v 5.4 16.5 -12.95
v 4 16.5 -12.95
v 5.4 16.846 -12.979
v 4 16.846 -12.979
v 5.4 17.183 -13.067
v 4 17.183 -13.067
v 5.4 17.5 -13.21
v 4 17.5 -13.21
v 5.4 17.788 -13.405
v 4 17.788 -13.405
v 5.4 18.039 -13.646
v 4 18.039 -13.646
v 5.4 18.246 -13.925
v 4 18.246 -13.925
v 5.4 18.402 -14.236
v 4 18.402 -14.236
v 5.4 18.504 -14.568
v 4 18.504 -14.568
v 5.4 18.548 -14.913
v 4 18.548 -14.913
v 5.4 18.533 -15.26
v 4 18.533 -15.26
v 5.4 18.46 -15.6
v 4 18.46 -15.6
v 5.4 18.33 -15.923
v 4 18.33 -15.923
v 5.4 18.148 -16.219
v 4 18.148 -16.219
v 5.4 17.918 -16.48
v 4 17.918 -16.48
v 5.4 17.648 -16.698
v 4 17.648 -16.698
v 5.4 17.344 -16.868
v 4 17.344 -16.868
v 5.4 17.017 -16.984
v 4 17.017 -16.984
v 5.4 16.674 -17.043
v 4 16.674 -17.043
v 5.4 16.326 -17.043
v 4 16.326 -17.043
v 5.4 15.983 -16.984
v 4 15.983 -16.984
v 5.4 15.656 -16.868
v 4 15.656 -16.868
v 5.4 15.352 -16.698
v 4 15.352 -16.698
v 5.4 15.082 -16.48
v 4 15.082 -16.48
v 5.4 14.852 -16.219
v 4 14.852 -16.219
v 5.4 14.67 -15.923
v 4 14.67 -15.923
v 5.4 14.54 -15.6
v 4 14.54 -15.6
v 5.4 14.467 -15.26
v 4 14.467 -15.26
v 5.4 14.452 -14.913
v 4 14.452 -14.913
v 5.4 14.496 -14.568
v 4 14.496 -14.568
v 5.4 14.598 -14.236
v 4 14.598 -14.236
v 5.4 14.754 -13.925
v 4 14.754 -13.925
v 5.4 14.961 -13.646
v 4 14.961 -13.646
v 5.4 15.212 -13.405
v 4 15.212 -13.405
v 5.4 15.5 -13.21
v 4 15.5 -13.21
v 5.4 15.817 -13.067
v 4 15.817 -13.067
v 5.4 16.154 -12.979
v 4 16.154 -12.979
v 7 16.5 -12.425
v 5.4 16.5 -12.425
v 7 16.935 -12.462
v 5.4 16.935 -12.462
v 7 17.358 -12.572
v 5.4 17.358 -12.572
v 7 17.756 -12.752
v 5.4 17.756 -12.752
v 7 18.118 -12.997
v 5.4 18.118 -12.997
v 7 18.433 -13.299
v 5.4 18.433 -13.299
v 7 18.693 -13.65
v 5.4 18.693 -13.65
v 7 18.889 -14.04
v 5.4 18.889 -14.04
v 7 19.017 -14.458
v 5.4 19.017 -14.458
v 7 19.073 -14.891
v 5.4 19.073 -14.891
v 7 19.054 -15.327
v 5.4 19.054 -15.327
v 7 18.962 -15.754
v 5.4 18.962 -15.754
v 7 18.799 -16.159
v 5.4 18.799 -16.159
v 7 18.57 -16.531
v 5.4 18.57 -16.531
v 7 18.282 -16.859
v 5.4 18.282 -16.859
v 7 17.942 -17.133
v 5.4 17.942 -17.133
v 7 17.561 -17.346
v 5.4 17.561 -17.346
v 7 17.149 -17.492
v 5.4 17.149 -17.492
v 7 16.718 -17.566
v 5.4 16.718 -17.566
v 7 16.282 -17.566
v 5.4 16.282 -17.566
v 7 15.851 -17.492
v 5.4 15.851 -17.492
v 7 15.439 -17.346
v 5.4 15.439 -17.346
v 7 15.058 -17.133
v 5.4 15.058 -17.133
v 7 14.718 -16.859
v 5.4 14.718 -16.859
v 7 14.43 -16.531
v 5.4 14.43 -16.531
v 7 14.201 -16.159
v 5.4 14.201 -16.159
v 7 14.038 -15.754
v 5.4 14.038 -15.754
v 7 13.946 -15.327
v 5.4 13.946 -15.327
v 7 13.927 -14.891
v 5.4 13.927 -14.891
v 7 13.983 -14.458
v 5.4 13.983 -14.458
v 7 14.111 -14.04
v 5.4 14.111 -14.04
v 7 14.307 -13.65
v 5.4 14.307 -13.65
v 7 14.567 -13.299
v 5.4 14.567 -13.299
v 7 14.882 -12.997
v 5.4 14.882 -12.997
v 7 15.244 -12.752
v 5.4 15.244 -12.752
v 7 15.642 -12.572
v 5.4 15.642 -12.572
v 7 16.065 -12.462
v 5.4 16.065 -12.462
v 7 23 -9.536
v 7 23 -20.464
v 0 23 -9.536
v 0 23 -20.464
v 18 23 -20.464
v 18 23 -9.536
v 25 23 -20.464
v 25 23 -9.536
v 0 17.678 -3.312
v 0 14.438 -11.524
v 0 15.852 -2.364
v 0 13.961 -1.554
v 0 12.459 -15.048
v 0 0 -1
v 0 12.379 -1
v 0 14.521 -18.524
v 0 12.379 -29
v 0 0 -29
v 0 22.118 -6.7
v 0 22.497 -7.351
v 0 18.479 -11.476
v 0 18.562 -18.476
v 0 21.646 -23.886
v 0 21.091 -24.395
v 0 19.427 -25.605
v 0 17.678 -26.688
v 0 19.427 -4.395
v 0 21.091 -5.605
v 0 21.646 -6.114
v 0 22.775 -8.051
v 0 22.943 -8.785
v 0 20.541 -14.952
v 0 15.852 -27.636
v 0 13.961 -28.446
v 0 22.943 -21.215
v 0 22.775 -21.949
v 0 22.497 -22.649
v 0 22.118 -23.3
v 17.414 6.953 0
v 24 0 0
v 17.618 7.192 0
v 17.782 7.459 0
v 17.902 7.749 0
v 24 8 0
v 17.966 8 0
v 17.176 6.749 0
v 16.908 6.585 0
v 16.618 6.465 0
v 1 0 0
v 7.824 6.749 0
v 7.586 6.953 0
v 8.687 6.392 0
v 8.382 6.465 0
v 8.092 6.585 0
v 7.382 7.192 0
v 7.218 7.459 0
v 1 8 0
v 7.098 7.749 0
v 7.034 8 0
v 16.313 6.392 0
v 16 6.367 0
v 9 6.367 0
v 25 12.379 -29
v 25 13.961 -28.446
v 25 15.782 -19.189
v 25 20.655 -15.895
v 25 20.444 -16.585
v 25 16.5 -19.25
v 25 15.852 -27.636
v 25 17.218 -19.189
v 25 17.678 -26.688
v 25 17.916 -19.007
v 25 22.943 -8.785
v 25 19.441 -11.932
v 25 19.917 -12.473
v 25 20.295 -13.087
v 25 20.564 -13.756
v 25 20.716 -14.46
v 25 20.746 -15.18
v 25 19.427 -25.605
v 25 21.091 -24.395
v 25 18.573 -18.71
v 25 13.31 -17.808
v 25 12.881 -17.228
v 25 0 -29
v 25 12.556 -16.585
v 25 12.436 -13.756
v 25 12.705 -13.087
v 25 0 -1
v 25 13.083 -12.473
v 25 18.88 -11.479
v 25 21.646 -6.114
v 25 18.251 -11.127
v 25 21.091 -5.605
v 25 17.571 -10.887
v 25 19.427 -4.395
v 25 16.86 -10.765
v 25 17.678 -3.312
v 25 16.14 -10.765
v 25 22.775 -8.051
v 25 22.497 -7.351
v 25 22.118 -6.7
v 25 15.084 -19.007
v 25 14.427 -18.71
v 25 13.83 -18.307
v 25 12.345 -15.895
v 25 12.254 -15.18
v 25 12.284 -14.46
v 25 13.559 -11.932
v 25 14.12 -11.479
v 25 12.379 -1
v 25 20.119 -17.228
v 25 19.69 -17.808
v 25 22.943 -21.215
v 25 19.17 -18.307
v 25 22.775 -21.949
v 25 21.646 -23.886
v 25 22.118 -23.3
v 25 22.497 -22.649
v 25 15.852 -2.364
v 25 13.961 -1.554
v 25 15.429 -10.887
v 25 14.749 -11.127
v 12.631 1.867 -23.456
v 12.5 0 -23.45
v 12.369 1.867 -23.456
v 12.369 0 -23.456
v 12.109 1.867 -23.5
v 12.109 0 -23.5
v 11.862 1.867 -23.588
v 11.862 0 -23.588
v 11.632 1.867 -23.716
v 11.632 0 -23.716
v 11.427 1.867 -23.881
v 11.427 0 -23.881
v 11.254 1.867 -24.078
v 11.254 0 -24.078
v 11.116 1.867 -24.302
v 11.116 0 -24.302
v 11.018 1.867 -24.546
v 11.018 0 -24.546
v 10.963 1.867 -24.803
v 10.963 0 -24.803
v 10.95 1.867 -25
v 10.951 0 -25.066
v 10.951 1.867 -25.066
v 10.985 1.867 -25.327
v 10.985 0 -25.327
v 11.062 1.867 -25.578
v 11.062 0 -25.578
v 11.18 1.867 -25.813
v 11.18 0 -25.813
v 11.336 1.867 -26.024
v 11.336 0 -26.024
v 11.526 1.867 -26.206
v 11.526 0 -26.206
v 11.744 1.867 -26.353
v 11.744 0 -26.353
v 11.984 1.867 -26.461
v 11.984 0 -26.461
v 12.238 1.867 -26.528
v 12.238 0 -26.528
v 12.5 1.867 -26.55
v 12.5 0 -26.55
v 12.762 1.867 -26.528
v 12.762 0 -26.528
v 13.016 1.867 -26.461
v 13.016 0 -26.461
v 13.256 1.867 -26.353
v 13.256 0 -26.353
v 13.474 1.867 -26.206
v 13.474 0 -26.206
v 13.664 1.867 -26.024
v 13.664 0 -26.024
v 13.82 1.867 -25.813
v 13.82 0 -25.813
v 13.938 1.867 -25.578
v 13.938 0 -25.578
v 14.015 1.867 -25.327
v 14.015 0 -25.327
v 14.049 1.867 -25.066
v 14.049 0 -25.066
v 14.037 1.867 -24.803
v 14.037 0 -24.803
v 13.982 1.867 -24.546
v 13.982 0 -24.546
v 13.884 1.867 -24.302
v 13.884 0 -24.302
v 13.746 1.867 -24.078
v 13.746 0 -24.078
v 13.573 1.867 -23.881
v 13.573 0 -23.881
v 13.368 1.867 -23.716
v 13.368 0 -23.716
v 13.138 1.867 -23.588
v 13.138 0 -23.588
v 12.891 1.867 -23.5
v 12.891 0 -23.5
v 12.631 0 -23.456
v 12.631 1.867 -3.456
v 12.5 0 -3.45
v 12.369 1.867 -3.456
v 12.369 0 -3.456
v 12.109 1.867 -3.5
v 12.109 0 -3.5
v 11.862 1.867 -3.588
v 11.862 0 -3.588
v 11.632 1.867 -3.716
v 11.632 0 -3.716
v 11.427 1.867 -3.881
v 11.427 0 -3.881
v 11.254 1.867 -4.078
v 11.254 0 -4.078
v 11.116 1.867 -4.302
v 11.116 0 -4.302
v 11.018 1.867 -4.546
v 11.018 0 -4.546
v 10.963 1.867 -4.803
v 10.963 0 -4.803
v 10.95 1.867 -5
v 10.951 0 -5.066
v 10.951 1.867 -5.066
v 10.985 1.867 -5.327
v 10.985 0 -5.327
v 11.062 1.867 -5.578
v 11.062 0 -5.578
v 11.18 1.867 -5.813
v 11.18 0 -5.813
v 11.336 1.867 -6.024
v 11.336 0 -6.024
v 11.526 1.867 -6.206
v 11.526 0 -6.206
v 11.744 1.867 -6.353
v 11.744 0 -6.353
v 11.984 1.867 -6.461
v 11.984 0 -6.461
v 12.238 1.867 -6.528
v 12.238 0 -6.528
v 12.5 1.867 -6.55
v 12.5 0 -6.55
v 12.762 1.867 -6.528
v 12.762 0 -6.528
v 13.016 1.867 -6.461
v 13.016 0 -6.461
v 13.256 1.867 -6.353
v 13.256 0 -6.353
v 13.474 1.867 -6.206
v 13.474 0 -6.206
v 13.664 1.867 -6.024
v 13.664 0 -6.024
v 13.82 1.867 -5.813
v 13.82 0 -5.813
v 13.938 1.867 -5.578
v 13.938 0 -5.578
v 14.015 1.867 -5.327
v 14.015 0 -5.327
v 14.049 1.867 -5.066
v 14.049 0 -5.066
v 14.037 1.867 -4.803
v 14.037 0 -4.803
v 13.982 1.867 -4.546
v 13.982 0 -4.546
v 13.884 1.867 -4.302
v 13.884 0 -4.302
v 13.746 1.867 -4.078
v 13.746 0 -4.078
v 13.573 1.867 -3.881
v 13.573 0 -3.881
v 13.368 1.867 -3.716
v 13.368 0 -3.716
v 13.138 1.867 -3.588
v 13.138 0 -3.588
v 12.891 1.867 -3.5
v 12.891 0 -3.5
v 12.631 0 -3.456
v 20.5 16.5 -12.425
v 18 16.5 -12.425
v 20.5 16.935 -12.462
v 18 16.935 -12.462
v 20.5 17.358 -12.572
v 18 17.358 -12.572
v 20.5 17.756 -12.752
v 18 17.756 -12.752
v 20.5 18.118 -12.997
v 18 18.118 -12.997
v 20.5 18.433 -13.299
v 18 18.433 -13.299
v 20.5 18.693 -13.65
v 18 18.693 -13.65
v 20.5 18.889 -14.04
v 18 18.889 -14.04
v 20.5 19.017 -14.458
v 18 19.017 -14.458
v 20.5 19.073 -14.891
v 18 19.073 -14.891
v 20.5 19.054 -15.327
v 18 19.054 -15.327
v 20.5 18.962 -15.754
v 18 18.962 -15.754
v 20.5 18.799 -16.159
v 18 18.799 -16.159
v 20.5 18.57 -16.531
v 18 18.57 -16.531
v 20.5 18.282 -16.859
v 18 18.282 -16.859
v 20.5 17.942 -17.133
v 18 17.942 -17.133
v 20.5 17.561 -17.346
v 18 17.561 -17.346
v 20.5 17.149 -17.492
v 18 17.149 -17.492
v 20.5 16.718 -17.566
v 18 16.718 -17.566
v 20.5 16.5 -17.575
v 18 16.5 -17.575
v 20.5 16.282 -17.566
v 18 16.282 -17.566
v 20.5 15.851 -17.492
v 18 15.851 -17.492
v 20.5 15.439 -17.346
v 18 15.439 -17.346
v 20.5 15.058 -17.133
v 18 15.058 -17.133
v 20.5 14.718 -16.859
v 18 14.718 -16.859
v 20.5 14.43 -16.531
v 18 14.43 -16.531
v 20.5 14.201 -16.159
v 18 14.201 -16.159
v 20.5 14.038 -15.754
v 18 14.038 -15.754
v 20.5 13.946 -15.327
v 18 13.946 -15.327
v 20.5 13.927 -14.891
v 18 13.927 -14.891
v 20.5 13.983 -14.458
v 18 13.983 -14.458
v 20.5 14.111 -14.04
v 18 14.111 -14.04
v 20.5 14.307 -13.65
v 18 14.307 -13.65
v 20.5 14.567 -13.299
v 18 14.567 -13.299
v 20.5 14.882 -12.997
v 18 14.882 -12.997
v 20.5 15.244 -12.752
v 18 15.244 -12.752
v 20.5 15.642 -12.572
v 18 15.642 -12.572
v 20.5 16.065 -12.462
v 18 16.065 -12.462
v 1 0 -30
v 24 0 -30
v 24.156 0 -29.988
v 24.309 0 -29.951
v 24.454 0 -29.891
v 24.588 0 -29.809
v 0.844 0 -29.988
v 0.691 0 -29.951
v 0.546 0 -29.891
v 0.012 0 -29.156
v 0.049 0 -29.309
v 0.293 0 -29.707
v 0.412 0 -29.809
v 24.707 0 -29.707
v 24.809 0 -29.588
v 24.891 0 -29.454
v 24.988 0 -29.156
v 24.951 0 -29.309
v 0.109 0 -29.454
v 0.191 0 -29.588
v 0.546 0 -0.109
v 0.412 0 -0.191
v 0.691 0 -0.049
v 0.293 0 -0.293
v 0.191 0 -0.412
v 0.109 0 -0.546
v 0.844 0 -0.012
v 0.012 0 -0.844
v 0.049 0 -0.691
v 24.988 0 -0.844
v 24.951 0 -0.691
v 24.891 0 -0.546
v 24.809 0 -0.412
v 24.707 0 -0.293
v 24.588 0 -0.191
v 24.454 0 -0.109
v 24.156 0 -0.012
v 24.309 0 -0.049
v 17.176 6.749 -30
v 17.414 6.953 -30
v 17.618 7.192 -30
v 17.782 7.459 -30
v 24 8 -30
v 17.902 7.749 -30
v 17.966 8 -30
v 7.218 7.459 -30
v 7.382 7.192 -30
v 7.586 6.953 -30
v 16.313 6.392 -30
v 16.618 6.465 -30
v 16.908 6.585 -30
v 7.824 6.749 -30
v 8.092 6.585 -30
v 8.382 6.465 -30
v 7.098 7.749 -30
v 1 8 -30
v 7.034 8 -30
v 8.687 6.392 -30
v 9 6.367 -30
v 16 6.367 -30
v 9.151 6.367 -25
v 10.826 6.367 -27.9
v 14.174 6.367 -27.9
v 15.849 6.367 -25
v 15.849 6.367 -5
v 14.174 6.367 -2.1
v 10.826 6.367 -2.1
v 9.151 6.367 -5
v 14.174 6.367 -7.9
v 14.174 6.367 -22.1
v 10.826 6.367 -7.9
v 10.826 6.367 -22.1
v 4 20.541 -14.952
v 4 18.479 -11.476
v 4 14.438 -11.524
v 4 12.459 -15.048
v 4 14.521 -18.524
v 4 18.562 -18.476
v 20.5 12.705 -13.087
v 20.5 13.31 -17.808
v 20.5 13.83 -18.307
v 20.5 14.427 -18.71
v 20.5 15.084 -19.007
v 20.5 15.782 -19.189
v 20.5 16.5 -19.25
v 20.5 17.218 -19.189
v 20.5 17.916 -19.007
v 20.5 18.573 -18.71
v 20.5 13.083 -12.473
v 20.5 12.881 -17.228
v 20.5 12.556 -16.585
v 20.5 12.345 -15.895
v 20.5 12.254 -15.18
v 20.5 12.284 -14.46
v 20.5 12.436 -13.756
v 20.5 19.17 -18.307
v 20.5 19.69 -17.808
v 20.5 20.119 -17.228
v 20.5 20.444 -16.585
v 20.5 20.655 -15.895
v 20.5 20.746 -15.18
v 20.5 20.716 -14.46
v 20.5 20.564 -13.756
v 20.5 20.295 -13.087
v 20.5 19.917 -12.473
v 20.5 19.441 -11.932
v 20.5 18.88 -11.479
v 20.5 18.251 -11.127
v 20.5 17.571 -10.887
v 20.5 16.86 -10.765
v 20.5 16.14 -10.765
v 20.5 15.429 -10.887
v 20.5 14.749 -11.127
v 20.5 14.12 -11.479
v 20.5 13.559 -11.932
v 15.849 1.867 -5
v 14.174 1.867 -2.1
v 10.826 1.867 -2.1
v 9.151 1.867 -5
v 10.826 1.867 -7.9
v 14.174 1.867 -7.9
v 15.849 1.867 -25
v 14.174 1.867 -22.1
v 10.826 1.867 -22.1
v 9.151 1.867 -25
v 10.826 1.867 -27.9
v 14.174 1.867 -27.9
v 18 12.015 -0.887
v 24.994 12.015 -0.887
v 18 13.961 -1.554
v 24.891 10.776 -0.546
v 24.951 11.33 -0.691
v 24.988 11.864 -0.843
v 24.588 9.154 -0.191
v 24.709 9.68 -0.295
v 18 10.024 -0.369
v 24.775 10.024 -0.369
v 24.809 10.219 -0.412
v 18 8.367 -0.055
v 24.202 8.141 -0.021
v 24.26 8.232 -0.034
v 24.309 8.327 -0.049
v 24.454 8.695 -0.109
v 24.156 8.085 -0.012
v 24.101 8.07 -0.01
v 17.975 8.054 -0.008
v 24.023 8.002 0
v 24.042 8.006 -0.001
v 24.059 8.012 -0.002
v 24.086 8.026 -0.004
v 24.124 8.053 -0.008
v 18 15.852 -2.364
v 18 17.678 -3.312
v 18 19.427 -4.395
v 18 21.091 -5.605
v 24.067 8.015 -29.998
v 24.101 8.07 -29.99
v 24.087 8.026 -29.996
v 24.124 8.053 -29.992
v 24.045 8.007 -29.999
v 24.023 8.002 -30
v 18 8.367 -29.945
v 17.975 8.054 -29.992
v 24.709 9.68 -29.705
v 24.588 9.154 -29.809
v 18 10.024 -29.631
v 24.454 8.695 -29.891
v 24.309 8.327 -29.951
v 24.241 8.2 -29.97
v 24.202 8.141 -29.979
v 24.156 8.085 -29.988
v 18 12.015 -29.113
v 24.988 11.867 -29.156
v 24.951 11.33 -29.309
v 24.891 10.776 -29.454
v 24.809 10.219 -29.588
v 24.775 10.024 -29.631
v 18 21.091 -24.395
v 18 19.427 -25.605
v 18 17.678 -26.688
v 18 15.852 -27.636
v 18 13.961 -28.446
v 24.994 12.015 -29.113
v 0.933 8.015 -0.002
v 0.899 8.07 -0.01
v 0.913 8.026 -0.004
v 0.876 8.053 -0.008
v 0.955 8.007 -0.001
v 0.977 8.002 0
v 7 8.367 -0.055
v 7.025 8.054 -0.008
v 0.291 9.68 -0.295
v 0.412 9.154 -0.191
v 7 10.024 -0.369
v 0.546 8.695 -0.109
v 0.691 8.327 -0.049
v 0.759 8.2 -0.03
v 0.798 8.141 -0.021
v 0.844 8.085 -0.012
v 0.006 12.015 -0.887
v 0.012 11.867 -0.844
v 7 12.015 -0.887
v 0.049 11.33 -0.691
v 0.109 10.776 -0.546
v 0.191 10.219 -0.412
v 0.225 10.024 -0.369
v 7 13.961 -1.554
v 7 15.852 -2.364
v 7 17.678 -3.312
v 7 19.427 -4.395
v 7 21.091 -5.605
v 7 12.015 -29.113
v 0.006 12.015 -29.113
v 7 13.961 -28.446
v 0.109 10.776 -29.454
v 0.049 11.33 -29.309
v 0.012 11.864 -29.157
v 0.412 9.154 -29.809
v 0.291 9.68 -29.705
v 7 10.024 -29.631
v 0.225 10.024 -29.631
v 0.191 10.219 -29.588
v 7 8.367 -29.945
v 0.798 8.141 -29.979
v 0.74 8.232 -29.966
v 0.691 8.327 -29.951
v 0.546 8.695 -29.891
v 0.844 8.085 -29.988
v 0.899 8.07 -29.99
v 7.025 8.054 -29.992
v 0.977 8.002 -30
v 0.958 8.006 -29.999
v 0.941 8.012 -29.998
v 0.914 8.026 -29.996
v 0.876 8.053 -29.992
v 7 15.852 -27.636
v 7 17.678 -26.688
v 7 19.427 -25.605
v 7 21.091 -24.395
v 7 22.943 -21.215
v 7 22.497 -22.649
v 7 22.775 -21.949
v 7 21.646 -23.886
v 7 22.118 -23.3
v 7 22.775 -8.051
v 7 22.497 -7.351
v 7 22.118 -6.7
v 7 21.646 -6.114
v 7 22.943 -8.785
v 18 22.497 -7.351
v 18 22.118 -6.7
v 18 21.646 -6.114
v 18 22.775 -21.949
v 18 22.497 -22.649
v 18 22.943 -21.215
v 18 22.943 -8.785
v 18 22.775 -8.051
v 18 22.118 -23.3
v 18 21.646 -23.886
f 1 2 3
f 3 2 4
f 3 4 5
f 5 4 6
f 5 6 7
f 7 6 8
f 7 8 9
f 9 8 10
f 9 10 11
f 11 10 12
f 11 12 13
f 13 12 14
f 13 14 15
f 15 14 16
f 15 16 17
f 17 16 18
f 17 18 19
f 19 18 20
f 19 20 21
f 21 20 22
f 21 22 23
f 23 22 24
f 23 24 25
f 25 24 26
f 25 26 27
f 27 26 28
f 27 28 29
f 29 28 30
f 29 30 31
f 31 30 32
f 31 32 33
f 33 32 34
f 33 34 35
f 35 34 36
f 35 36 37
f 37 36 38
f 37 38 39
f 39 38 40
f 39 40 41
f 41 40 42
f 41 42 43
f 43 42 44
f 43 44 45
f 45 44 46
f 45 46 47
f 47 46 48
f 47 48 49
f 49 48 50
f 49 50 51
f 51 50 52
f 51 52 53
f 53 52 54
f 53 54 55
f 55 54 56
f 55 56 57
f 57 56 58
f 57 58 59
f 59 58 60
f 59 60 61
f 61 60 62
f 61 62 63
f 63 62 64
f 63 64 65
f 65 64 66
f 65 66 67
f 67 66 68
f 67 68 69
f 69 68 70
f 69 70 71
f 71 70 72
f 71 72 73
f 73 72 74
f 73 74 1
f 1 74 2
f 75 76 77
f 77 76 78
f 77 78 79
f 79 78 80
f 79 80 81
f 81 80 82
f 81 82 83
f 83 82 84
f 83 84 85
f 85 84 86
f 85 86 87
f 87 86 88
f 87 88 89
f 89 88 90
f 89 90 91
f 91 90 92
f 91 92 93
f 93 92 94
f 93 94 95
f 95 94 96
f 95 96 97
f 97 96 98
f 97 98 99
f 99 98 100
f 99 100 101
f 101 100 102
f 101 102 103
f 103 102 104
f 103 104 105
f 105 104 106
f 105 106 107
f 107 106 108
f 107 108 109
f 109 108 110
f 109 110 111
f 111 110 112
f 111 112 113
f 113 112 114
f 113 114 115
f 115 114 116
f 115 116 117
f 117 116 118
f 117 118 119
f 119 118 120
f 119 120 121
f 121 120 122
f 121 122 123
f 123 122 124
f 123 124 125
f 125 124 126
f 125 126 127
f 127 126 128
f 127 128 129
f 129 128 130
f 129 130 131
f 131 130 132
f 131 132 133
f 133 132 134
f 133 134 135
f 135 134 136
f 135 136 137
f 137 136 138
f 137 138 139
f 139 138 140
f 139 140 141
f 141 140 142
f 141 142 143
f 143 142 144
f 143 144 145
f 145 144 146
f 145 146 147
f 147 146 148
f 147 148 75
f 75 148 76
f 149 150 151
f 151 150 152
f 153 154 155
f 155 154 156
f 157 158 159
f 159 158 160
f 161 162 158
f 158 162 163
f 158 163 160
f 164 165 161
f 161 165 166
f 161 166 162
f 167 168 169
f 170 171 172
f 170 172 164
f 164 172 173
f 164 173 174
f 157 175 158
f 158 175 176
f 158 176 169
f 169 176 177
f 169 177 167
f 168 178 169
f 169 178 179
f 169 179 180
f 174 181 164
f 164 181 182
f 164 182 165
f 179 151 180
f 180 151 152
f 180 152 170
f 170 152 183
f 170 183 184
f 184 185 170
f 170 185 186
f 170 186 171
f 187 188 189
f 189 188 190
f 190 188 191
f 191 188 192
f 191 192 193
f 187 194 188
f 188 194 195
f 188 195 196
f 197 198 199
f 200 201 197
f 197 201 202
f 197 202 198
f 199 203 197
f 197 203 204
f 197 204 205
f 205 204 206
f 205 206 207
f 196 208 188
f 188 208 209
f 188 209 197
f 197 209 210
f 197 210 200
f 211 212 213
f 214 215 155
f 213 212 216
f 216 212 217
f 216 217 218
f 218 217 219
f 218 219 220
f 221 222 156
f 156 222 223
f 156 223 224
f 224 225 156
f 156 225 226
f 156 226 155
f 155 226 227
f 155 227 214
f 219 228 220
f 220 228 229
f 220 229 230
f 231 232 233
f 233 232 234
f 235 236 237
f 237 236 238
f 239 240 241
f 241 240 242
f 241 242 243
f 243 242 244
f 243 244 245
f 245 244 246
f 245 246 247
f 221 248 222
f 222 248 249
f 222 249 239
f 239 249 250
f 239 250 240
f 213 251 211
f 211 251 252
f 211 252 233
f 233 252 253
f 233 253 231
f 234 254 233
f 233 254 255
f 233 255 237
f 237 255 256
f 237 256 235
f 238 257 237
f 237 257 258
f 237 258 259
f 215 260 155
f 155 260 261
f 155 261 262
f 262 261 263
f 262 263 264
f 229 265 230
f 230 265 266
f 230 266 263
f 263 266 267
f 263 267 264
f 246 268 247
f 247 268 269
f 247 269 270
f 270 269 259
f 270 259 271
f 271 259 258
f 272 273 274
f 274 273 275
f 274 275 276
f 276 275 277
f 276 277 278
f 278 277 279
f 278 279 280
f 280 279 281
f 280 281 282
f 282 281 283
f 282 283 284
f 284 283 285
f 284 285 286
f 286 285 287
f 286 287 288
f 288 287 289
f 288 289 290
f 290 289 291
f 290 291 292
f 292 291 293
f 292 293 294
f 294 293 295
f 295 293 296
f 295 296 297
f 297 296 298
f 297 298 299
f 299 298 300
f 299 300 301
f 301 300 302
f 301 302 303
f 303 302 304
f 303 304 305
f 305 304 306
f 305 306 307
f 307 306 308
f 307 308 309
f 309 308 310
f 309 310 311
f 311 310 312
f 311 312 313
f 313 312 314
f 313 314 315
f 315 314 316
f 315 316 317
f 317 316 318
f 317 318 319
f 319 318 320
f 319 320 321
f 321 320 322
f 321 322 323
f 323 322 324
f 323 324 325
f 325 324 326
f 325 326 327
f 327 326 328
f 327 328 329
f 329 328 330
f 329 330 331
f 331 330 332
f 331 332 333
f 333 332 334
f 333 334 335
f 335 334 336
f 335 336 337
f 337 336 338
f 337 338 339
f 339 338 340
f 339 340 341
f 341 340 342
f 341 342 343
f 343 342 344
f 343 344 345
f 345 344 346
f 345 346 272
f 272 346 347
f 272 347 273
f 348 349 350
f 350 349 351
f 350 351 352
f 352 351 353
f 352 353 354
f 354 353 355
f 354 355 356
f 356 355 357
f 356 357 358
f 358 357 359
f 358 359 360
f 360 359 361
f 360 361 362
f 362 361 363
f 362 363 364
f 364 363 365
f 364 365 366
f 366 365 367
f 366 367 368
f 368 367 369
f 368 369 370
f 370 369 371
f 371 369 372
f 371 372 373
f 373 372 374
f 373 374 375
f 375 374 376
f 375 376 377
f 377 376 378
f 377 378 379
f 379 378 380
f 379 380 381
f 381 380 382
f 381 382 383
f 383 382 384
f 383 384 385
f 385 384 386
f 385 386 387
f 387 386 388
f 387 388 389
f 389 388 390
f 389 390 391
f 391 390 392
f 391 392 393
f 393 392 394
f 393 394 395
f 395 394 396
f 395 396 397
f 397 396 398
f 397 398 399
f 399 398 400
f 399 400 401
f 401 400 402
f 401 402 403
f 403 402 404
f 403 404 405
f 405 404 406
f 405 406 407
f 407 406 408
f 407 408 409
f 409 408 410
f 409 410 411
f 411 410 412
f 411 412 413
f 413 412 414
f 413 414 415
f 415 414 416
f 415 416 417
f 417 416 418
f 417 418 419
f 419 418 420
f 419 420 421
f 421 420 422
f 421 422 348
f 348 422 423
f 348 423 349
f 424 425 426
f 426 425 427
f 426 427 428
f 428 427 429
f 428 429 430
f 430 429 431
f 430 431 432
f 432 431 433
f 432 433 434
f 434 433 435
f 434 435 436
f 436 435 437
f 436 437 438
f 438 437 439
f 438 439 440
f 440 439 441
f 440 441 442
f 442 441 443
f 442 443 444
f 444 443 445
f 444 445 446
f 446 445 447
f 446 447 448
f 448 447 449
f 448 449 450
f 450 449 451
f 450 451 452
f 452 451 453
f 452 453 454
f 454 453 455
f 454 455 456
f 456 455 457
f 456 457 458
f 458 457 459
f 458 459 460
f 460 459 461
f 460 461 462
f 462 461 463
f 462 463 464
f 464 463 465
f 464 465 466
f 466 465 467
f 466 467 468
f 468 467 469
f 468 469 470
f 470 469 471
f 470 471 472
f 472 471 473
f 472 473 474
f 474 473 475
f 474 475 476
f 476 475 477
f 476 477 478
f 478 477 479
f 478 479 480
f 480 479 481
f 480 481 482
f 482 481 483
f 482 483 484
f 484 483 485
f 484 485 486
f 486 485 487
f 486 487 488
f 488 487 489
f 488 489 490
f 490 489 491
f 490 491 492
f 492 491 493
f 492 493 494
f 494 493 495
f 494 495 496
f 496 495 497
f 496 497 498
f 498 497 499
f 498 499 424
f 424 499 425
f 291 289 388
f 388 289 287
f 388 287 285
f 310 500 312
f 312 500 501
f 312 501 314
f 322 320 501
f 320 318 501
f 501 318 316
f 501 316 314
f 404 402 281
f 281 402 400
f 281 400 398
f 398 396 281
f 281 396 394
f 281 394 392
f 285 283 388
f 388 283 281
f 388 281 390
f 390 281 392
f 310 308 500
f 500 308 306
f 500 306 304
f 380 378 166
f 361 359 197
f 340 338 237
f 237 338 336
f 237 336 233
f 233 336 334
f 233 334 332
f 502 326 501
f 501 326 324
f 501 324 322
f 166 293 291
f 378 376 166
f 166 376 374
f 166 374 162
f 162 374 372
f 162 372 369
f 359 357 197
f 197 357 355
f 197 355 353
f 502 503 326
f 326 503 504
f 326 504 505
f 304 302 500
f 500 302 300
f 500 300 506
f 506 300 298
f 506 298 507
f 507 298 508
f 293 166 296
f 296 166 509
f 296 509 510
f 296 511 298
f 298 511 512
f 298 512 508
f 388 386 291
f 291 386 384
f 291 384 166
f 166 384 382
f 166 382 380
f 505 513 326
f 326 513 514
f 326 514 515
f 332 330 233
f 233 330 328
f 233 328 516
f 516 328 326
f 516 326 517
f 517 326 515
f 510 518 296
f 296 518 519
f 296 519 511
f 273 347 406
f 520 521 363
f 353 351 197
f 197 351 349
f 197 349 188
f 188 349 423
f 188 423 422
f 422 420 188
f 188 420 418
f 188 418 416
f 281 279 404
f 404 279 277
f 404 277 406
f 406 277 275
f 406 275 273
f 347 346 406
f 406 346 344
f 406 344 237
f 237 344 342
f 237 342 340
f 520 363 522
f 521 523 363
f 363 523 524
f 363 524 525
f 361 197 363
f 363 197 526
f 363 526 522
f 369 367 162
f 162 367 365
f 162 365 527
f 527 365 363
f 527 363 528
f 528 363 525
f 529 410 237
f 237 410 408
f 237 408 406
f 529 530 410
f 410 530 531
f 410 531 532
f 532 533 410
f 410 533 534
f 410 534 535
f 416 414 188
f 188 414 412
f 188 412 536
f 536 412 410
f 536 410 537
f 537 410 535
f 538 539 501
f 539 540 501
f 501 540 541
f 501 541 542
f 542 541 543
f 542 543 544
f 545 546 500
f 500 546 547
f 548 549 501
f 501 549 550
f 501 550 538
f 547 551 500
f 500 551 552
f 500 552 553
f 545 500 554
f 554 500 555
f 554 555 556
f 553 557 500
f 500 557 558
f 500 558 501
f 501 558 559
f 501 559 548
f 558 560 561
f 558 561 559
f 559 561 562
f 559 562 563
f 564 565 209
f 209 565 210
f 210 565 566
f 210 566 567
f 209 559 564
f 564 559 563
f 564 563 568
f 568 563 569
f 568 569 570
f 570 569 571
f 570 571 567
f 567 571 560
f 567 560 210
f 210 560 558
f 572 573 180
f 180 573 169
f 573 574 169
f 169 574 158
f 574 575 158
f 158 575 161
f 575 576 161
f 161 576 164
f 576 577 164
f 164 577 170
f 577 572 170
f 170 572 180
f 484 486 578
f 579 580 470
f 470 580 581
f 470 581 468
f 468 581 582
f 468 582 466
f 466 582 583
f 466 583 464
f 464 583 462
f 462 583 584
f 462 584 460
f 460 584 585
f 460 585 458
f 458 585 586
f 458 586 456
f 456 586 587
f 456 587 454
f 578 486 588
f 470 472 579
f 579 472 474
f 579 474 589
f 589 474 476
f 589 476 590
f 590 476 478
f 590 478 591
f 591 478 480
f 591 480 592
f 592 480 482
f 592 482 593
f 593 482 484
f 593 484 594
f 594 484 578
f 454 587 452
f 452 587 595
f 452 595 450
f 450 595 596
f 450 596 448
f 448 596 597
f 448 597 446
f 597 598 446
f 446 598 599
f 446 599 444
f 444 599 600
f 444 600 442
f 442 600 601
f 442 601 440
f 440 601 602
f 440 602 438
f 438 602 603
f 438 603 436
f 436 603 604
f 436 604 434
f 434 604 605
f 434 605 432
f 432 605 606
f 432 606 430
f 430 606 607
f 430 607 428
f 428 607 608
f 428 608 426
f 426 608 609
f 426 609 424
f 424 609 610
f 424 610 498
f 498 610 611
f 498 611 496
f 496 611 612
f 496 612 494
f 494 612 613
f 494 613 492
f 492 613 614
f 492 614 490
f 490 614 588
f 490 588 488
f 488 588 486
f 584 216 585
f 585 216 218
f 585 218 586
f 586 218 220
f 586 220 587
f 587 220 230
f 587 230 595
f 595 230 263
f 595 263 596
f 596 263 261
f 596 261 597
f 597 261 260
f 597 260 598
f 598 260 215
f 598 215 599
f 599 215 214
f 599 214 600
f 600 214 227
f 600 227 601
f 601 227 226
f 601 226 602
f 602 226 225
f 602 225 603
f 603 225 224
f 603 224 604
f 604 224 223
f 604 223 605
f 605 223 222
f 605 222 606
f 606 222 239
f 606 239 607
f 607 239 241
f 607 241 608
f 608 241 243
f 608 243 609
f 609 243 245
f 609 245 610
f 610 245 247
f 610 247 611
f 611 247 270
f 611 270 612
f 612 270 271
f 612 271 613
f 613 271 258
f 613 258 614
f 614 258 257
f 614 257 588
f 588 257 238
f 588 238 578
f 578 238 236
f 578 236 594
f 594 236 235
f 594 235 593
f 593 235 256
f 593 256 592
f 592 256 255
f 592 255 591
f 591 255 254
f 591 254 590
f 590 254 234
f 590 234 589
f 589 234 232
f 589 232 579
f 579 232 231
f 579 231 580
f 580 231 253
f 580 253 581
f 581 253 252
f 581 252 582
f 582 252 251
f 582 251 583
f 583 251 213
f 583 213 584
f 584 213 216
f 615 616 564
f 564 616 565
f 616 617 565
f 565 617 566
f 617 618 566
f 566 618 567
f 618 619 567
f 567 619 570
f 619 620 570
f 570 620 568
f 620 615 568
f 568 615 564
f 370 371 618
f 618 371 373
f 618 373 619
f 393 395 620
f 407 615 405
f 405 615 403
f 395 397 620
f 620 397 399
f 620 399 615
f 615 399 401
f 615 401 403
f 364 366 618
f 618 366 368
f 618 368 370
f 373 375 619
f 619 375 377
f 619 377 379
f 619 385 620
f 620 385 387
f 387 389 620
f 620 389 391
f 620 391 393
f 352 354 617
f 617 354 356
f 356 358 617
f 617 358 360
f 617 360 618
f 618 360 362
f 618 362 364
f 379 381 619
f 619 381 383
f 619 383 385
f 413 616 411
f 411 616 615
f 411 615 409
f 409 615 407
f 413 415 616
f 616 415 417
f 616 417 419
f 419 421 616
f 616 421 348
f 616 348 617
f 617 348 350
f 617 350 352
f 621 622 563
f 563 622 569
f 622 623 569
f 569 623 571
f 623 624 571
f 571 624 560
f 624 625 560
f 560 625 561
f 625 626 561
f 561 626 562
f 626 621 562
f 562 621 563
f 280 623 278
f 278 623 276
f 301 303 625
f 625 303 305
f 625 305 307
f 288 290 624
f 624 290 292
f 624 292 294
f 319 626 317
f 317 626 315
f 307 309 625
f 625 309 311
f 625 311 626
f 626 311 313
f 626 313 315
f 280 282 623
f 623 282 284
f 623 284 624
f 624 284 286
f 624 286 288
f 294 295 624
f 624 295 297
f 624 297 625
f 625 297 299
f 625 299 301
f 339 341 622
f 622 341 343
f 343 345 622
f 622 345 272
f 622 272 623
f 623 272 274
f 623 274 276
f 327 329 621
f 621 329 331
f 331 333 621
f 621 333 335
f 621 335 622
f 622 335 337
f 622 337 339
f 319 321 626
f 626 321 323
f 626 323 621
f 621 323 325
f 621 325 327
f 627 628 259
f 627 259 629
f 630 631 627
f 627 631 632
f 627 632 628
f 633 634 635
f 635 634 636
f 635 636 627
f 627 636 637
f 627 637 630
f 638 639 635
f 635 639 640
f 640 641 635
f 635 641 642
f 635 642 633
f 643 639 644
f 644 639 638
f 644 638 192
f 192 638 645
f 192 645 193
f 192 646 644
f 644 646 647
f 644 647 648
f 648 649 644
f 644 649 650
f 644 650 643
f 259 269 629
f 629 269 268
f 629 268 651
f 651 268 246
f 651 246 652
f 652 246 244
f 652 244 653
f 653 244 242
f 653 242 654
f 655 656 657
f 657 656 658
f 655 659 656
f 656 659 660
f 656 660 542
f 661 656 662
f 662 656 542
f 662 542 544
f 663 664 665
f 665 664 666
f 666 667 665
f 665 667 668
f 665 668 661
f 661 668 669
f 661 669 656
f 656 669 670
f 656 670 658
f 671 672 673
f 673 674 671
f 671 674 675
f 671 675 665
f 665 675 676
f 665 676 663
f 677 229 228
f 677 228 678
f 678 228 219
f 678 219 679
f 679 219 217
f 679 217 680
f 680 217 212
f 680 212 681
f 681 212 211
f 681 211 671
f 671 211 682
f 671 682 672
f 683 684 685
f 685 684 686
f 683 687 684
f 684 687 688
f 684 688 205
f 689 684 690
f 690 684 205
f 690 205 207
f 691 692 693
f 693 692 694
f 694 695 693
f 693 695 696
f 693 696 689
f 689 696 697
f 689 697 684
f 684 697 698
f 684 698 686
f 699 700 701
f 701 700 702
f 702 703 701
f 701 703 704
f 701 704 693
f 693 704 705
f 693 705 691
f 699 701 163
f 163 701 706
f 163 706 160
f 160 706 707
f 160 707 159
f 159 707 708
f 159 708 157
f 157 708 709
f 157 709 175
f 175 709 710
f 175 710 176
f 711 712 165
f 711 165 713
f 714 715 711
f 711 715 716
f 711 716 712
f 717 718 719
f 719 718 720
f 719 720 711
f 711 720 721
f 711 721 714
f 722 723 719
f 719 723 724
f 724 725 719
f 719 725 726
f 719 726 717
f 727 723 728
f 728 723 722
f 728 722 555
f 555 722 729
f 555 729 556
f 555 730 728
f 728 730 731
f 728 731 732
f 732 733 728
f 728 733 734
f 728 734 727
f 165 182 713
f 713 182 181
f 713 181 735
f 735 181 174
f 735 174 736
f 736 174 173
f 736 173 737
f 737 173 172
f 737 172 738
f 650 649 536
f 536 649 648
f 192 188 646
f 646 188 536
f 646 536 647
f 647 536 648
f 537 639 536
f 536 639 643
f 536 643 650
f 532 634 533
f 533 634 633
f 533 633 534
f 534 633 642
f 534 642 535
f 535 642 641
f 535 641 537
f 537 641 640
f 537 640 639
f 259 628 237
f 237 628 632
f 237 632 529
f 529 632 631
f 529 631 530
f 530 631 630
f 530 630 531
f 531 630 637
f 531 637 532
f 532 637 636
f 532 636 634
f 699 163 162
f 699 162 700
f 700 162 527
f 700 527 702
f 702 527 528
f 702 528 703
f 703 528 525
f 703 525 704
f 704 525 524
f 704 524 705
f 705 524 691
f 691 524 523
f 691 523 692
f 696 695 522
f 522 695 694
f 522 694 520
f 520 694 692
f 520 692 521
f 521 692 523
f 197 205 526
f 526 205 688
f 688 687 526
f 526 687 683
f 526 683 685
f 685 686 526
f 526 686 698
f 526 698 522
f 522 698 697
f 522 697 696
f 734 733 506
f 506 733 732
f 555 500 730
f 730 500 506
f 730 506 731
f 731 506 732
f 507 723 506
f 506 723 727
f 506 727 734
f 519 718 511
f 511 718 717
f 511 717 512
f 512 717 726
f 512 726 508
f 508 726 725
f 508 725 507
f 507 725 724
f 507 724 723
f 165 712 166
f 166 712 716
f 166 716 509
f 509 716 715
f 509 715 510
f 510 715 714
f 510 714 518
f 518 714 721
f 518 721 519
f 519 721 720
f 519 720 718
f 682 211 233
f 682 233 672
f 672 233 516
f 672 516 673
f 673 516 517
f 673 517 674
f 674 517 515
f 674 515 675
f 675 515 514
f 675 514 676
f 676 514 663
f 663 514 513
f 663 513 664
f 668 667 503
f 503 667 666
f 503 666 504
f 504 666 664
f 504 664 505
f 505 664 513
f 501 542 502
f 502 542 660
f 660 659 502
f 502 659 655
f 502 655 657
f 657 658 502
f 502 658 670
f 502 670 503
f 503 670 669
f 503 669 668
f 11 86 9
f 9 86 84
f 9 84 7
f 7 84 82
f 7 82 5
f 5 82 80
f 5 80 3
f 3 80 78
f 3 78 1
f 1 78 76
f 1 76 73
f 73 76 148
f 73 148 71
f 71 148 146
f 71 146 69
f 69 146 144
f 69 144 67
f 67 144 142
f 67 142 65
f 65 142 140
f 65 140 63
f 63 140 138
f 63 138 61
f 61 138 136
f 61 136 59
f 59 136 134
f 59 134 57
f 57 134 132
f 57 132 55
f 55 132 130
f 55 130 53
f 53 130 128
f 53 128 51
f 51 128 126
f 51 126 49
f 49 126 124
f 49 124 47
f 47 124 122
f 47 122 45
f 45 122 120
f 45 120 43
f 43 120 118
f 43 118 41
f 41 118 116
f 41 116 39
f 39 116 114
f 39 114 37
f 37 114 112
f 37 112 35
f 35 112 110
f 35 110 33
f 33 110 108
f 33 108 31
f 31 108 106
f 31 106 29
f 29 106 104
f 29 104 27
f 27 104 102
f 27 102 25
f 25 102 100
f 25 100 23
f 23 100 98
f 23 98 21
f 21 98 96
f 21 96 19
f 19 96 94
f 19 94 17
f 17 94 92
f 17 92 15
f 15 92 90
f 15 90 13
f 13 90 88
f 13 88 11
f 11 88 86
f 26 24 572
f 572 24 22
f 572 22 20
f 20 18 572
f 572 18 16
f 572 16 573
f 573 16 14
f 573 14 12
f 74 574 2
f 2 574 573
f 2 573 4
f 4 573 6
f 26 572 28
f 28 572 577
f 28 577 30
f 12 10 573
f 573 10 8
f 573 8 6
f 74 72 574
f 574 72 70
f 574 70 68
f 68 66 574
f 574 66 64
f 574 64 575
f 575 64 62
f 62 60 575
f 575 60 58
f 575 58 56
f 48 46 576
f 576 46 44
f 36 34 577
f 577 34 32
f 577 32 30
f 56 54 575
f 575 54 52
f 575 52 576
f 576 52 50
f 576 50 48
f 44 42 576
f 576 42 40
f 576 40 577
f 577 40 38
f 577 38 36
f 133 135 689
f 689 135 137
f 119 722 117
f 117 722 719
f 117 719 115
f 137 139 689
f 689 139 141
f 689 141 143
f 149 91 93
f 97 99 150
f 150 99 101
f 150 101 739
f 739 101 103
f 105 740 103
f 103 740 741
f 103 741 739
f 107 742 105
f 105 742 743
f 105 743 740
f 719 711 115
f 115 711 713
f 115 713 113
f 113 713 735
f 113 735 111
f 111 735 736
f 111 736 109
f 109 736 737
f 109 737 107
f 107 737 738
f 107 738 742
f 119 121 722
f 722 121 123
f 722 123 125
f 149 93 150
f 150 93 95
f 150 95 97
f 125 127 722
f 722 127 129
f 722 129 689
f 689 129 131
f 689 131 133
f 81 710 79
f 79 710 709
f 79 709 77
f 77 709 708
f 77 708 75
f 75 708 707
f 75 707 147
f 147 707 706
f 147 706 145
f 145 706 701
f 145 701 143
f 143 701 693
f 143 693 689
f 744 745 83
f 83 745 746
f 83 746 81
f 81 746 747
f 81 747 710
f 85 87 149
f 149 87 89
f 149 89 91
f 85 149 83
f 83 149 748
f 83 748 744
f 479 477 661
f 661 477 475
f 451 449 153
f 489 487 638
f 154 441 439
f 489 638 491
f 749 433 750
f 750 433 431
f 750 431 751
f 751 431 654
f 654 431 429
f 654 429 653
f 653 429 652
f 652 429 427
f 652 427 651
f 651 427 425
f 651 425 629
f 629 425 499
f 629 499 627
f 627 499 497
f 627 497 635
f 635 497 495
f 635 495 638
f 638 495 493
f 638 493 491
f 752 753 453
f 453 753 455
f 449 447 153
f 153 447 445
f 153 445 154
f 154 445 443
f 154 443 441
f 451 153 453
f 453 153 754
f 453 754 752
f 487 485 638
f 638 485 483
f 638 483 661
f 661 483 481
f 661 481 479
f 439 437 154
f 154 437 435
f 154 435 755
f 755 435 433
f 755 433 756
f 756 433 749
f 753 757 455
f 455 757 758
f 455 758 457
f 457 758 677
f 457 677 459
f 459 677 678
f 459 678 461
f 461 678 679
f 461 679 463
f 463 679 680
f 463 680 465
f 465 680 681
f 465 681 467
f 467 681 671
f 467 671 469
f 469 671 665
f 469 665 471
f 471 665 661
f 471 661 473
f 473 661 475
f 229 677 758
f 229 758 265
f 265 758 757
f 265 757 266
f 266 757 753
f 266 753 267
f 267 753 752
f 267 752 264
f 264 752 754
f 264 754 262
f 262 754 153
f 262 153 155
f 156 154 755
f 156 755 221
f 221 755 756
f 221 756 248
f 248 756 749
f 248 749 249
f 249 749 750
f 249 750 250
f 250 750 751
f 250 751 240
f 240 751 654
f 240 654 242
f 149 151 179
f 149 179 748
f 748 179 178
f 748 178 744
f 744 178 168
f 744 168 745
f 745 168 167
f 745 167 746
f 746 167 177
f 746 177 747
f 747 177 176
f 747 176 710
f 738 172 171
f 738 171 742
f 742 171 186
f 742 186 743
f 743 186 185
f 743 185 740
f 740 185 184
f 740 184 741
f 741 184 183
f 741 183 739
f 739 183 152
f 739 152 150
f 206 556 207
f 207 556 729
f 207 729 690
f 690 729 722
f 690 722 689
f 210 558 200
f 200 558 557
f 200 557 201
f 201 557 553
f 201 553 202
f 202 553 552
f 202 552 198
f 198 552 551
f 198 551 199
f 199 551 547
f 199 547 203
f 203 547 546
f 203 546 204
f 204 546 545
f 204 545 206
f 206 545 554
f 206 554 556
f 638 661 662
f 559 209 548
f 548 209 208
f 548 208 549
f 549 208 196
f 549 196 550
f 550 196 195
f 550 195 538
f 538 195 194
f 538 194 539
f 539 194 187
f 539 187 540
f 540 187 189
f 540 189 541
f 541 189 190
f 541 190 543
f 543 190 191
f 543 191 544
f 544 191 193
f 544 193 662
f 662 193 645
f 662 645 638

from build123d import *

# Parameters (mm, degrees)
CROQUIS1_W              = 25
CROQUIS1_H              = 30
CROQUIS1_R              = 1.55
SALIENTE_EXTRUIR1_DEPTH = 23
CORTAR_EXTRUIR1_REACH   = 47.321
CROQUIS2_W              = 9
CROQUIS2_H              = 16.632666969
CORTAR_EXTRUIR2_REACH   = 47.321
CROQUIS3_R              = 2.575
CORTAR_EXTRUIR3_DEPTH   = 2.5
CROQUIS5_R              = 4.25
CORTAR_EXTRUIR4_DEPTH   = 4.5
CORTAR_EXTRUIR5_DEPTH   = 4.5
CORTAR_EXTRUIR6_REACH   = 47.321
REDONDEO3_R             = 1
CROQUIS8_R              = 2.575
CROQUIS8_R_2            = 2.05
SALIENTE_EXTRUIR2_DEPTH = 2.9
CORTAR_EXTRUIR7_DEPTH   = 1.5
CORTAR_EXTRUIR8_START   = -16.632667
CROQUIS10_W             = 1
CROQUIS10_H             = 30
CORTAR_EXTRUIR8_DEPTH   = 16.632667
REDONDEO4_R             = 5
REDONDEO5_R             = 2


with BuildPart() as part:
    # Croquis1 → Saliente-Extruir1 (new body)
    with BuildSketch(Plane(origin=(0, 0, 0), x_dir=(1, 0, 0), z_dir=(0, 1, 0))):
        with Locations((12.5, 15)):
            Rectangle(CROQUIS1_W, CROQUIS1_H)
        with Locations(Location((12.5, 25, 0), (0, 0, 270))):
            Circle(CROQUIS1_R, mode=Mode.SUBTRACT)
        with Locations(Location((12.5, 5, 0), (0, 0, 270))):
            Circle(CROQUIS1_R, mode=Mode.SUBTRACT)
    extrude(amount=SALIENTE_EXTRUIR1_DEPTH)

    # Cortar-Extruir1: up to this face of the body (flat: up to its plane)
    cortar_extruir1_end = Plane(part.part.faces().sort_by_distance((12.5, 11.5, 0))[0])
    # Croquis2 → Cortar-Extruir1 (cut, up to the picked face)
    with BuildSketch(Plane(origin=(0, 0, -30), x_dir=(-1, 0, 0), z_dir=(0, 0, -1)), mode=Mode.PRIVATE) as cortar_extruir1_sk1:
        with Locations((-12.5, 14.683666516)):
            Rectangle(CROQUIS2_W, CROQUIS2_H)
    cortar_extruir1_tool1 = split(extrude(cortar_extruir1_sk1.sketch, amount=-CORTAR_EXTRUIR1_REACH, mode=Mode.PRIVATE), bisect_by=cortar_extruir1_end, keep=Keep.BOTH, mode=Mode.PRIVATE)
    add(cortar_extruir1_tool1.solids().sort_by(Axis((12.5, 14.683667, -30), (0, 0, 1)))[0], mode=Mode.SUBTRACT)

    # Cortar-Extruir2: up to this face of the body (flat: up to its plane)
    cortar_extruir2_end = Plane(part.part.faces().sort_by_distance((25, 11.5, -15))[0])
    # Croquis3 → Cortar-Extruir2 (cut, up to the picked face)
    with BuildSketch(Plane.ZY, mode=Mode.PRIVATE) as cortar_extruir2_sk1:
        with Locations((-15, 16.5)):
            Circle(CROQUIS3_R)
    cortar_extruir2_tool1 = split(extrude(cortar_extruir2_sk1.sketch, amount=-CORTAR_EXTRUIR2_REACH, mode=Mode.PRIVATE), bisect_by=cortar_extruir2_end, keep=Keep.BOTH, mode=Mode.PRIVATE)
    add(cortar_extruir2_tool1.solids().sort_by(Axis((0, 16.5, -15), (1, 0, 0)))[0], mode=Mode.SUBTRACT)

    # Croquis4 → Cortar-Extruir3 (cut)
    with BuildSketch(Plane.ZY):
        Polygon((-14.95180736, 20.541164535), (-18.475654829, 18.562318318), (-18.523847469, 14.521153783), (-15.04819264, 12.458835465), (-11.524345171, 14.437681682), (-11.476152531, 18.478846217), align=None)
    extrude(amount=-CORTAR_EXTRUIR3_DEPTH, mode=Mode.SUBTRACT)

    # Croquis5 → Cortar-Extruir4 (cut)
    with BuildSketch(Plane(origin=(25, 0, 0), x_dir=(0, 0, -1), z_dir=(1, 0, 0))):
        with Locations((15, 16.5)):
            Circle(CROQUIS5_R)
    extrude(amount=-CORTAR_EXTRUIR4_DEPTH, mode=Mode.SUBTRACT)

    # Croquis6 → Cortar-Extruir5 (cut)
    with BuildSketch(Plane(origin=(0, 6.367333031, 0), x_dir=(1, 0, 0), z_dir=(0, 1, 0))):
        Polygon((15.848631561, 25), (14.174315781, 27.9), (10.825684219, 27.9), (9.151368439, 25), (10.825684219, 22.1), (14.174315781, 22.1), align=None)
        Polygon((15.848631561, 5), (14.174315781, 7.9), (10.825684219, 7.9), (9.151368439, 5), (10.825684219, 2.1), (14.174315781, 2.1), align=None)
    extrude(amount=-CORTAR_EXTRUIR5_DEPTH, mode=Mode.SUBTRACT)

    # Cortar-Extruir6: up to this face of the body (flat: up to its plane)
    cortar_extruir6_end = Plane(part.part.faces().sort_by_distance((25, 11.051957593, -15))[0])
    # Croquis7 → Cortar-Extruir6 (cut, up to the picked face)
    with BuildSketch(Plane.ZY, mode=Mode.PRIVATE) as cortar_extruir6_sk1:
        with BuildLine():
            Line((-22.745966692, 23), (-30, 23))
            Line((-30, 23), (-30, 8))
            ThreePointArc((-30, 8), (-27.536048339, 16.062460813), (-22.745966692, 23))
        make_face()
    cortar_extruir6_tool1 = split(extrude(cortar_extruir6_sk1.sketch, amount=-CORTAR_EXTRUIR6_REACH, mode=Mode.PRIVATE), bisect_by=cortar_extruir6_end, keep=Keep.BOTH, mode=Mode.PRIVATE)
    # Croquis7 → Cortar-Extruir6 (cut, up to the picked face)
    with BuildSketch(Plane.ZY, mode=Mode.PRIVATE) as cortar_extruir6_sk2:
        with BuildLine():
            Line((0, 23), (-7.254033308, 23))
            ThreePointArc((-7.254033308, 23), (-2.463951661, 16.062460813), (0, 8))
            Line((0, 8), (0, 23))
        make_face()
    cortar_extruir6_tool2 = split(extrude(cortar_extruir6_sk2.sketch, amount=-CORTAR_EXTRUIR6_REACH, mode=Mode.PRIVATE), bisect_by=cortar_extruir6_end, keep=Keep.BOTH, mode=Mode.PRIVATE)
    add(cortar_extruir6_tool1.solids().sort_by(Axis((0, 18.820242, -27.849866), (1, 0, 0)))[0], mode=Mode.SUBTRACT)
    add(cortar_extruir6_tool2.solids().sort_by(Axis((0, 18.820242, -2.150134), (1, 0, 0)))[0], mode=Mode.SUBTRACT)

    # Redondeo3
    redondeo3_edges = [part.edges().sort_by_distance(p)[0] for p in [
        (25, 4, -30),
        (0, 4, -30),
        (25, 4, 0),
        (0, 4, 0),
    ]]
    fillet(redondeo3_edges, radius=REDONDEO3_R)

    # Croquis8 → Saliente-Extruir2 (add)
    with BuildSketch(Plane.ZY.offset(-2.5)):
        with Locations((-15, 16.5)):
            Circle(CROQUIS8_R)
        with Locations((-15, 16.5)):
            Circle(CROQUIS8_R_2, mode=Mode.SUBTRACT)
    extrude(amount=-SALIENTE_EXTRUIR2_DEPTH)

    # Croquis9 → Cortar-Extruir7 (cut)
    with BuildSketch(Plane.ZY.offset(-2.5)):
        Polygon((-11.476152531, 18.478846217), (-14.95180736, 20.541164535), (-18.475654829, 18.562318318), (-18.523847469, 14.521153783), (-15.04819264, 12.458835465), (-11.524345171, 14.437681682), align=None)
    extrude(amount=-CORTAR_EXTRUIR7_DEPTH, mode=Mode.SUBTRACT)

    # Croquis10 → Cortar-Extruir8 (cut)
    with BuildSketch(Plane(origin=(0, 23, 0), x_dir=(1, 0, 0), z_dir=(0, 1, 0)).offset(CORTAR_EXTRUIR8_START)):
        with Locations((17.5, 15)):
            Rectangle(CROQUIS10_W, CROQUIS10_H)
        with Locations((7.5, 15)):
            Rectangle(CROQUIS10_W, CROQUIS10_H)
    extrude(amount=CORTAR_EXTRUIR8_DEPTH, mode=Mode.SUBTRACT)

    # Redondeo4
    redondeo4_edges = [part.edges().sort_by_distance(p)[0] for p in [
        (21.5, 23, -22.745966692),
        (21.5, 23, -7.254033308),
        (3.5, 23, -22.745966692),
        (3.5, 23, -7.254033308),
    ]]
    fillet(redondeo4_edges, radius=REDONDEO4_R)

    # Redondeo5
    # the kernel refuses this fillet: 2 mm, written as the material it adds along each edge
    with BuildSketch(Plane(origin=(7, 6.367333, 0), x_dir=(1, 0, 0), z_dir=(0, 0, -1))) as redondeo5_piece_1_section:
        with BuildLine():
            CenterArc((REDONDEO5_R, -REDONDEO5_R), REDONDEO5_R, 90, 90)
            Line((0, -REDONDEO5_R), (0, 0))
            Line((0, 0), (REDONDEO5_R, 0))
        make_face()
    redondeo5_piece_1 = extrude(amount=30, mode=Mode.PRIVATE)
    redondeo5_piece_1 = redondeo5_piece_1 & Plane(origin=(7.452804223, 4.086860333, -2.772720189), x_dir=(0, 0.14225955268543314, -0.9898293891725687), z_dir=(-1, 0, 0)) * Cylinder(27.507043243, 68, mode=Mode.PRIVATE)
    redondeo5_piece_1 = redondeo5_piece_1 & Plane(origin=(7.452804223, 4.086860333, -27.227279811), x_dir=(0, 0.6875744332215433, 0.7261139020705178), z_dir=(-1, 0, 0)) * Cylinder(27.507043243, 68, mode=Mode.PRIVATE)
    add(redondeo5_piece_1)
    with BuildSketch(Plane(origin=(18, 6.367333, 0), x_dir=(0, 1, 0), z_dir=(0, 0, -1))) as redondeo5_piece_2_section:
        with BuildLine():
            CenterArc((REDONDEO5_R, -REDONDEO5_R), REDONDEO5_R, 90, 90)
            Line((0, -REDONDEO5_R), (0, 0))
            Line((0, 0), (REDONDEO5_R, 0))
        make_face()
    redondeo5_piece_2 = extrude(amount=30, mode=Mode.PRIVATE)
    redondeo5_piece_2 = redondeo5_piece_2 & Plane(origin=(17.547195777, 4.086860333, -27.227279811), x_dir=(0, 0.6875744332215433, 0.7261139020705178), z_dir=(-1, 0, 0)) * Cylinder(27.507043243, 69, mode=Mode.PRIVATE)
    redondeo5_piece_2 = redondeo5_piece_2 & Plane(origin=(17.547195777, 4.086860333, -2.772720189), x_dir=(0, 0.14225955268543314, -0.9898293891725687), z_dir=(-1, 0, 0)) * Cylinder(27.507043243, 69, mode=Mode.PRIVATE)
    add(redondeo5_piece_2)


solid = part.part
